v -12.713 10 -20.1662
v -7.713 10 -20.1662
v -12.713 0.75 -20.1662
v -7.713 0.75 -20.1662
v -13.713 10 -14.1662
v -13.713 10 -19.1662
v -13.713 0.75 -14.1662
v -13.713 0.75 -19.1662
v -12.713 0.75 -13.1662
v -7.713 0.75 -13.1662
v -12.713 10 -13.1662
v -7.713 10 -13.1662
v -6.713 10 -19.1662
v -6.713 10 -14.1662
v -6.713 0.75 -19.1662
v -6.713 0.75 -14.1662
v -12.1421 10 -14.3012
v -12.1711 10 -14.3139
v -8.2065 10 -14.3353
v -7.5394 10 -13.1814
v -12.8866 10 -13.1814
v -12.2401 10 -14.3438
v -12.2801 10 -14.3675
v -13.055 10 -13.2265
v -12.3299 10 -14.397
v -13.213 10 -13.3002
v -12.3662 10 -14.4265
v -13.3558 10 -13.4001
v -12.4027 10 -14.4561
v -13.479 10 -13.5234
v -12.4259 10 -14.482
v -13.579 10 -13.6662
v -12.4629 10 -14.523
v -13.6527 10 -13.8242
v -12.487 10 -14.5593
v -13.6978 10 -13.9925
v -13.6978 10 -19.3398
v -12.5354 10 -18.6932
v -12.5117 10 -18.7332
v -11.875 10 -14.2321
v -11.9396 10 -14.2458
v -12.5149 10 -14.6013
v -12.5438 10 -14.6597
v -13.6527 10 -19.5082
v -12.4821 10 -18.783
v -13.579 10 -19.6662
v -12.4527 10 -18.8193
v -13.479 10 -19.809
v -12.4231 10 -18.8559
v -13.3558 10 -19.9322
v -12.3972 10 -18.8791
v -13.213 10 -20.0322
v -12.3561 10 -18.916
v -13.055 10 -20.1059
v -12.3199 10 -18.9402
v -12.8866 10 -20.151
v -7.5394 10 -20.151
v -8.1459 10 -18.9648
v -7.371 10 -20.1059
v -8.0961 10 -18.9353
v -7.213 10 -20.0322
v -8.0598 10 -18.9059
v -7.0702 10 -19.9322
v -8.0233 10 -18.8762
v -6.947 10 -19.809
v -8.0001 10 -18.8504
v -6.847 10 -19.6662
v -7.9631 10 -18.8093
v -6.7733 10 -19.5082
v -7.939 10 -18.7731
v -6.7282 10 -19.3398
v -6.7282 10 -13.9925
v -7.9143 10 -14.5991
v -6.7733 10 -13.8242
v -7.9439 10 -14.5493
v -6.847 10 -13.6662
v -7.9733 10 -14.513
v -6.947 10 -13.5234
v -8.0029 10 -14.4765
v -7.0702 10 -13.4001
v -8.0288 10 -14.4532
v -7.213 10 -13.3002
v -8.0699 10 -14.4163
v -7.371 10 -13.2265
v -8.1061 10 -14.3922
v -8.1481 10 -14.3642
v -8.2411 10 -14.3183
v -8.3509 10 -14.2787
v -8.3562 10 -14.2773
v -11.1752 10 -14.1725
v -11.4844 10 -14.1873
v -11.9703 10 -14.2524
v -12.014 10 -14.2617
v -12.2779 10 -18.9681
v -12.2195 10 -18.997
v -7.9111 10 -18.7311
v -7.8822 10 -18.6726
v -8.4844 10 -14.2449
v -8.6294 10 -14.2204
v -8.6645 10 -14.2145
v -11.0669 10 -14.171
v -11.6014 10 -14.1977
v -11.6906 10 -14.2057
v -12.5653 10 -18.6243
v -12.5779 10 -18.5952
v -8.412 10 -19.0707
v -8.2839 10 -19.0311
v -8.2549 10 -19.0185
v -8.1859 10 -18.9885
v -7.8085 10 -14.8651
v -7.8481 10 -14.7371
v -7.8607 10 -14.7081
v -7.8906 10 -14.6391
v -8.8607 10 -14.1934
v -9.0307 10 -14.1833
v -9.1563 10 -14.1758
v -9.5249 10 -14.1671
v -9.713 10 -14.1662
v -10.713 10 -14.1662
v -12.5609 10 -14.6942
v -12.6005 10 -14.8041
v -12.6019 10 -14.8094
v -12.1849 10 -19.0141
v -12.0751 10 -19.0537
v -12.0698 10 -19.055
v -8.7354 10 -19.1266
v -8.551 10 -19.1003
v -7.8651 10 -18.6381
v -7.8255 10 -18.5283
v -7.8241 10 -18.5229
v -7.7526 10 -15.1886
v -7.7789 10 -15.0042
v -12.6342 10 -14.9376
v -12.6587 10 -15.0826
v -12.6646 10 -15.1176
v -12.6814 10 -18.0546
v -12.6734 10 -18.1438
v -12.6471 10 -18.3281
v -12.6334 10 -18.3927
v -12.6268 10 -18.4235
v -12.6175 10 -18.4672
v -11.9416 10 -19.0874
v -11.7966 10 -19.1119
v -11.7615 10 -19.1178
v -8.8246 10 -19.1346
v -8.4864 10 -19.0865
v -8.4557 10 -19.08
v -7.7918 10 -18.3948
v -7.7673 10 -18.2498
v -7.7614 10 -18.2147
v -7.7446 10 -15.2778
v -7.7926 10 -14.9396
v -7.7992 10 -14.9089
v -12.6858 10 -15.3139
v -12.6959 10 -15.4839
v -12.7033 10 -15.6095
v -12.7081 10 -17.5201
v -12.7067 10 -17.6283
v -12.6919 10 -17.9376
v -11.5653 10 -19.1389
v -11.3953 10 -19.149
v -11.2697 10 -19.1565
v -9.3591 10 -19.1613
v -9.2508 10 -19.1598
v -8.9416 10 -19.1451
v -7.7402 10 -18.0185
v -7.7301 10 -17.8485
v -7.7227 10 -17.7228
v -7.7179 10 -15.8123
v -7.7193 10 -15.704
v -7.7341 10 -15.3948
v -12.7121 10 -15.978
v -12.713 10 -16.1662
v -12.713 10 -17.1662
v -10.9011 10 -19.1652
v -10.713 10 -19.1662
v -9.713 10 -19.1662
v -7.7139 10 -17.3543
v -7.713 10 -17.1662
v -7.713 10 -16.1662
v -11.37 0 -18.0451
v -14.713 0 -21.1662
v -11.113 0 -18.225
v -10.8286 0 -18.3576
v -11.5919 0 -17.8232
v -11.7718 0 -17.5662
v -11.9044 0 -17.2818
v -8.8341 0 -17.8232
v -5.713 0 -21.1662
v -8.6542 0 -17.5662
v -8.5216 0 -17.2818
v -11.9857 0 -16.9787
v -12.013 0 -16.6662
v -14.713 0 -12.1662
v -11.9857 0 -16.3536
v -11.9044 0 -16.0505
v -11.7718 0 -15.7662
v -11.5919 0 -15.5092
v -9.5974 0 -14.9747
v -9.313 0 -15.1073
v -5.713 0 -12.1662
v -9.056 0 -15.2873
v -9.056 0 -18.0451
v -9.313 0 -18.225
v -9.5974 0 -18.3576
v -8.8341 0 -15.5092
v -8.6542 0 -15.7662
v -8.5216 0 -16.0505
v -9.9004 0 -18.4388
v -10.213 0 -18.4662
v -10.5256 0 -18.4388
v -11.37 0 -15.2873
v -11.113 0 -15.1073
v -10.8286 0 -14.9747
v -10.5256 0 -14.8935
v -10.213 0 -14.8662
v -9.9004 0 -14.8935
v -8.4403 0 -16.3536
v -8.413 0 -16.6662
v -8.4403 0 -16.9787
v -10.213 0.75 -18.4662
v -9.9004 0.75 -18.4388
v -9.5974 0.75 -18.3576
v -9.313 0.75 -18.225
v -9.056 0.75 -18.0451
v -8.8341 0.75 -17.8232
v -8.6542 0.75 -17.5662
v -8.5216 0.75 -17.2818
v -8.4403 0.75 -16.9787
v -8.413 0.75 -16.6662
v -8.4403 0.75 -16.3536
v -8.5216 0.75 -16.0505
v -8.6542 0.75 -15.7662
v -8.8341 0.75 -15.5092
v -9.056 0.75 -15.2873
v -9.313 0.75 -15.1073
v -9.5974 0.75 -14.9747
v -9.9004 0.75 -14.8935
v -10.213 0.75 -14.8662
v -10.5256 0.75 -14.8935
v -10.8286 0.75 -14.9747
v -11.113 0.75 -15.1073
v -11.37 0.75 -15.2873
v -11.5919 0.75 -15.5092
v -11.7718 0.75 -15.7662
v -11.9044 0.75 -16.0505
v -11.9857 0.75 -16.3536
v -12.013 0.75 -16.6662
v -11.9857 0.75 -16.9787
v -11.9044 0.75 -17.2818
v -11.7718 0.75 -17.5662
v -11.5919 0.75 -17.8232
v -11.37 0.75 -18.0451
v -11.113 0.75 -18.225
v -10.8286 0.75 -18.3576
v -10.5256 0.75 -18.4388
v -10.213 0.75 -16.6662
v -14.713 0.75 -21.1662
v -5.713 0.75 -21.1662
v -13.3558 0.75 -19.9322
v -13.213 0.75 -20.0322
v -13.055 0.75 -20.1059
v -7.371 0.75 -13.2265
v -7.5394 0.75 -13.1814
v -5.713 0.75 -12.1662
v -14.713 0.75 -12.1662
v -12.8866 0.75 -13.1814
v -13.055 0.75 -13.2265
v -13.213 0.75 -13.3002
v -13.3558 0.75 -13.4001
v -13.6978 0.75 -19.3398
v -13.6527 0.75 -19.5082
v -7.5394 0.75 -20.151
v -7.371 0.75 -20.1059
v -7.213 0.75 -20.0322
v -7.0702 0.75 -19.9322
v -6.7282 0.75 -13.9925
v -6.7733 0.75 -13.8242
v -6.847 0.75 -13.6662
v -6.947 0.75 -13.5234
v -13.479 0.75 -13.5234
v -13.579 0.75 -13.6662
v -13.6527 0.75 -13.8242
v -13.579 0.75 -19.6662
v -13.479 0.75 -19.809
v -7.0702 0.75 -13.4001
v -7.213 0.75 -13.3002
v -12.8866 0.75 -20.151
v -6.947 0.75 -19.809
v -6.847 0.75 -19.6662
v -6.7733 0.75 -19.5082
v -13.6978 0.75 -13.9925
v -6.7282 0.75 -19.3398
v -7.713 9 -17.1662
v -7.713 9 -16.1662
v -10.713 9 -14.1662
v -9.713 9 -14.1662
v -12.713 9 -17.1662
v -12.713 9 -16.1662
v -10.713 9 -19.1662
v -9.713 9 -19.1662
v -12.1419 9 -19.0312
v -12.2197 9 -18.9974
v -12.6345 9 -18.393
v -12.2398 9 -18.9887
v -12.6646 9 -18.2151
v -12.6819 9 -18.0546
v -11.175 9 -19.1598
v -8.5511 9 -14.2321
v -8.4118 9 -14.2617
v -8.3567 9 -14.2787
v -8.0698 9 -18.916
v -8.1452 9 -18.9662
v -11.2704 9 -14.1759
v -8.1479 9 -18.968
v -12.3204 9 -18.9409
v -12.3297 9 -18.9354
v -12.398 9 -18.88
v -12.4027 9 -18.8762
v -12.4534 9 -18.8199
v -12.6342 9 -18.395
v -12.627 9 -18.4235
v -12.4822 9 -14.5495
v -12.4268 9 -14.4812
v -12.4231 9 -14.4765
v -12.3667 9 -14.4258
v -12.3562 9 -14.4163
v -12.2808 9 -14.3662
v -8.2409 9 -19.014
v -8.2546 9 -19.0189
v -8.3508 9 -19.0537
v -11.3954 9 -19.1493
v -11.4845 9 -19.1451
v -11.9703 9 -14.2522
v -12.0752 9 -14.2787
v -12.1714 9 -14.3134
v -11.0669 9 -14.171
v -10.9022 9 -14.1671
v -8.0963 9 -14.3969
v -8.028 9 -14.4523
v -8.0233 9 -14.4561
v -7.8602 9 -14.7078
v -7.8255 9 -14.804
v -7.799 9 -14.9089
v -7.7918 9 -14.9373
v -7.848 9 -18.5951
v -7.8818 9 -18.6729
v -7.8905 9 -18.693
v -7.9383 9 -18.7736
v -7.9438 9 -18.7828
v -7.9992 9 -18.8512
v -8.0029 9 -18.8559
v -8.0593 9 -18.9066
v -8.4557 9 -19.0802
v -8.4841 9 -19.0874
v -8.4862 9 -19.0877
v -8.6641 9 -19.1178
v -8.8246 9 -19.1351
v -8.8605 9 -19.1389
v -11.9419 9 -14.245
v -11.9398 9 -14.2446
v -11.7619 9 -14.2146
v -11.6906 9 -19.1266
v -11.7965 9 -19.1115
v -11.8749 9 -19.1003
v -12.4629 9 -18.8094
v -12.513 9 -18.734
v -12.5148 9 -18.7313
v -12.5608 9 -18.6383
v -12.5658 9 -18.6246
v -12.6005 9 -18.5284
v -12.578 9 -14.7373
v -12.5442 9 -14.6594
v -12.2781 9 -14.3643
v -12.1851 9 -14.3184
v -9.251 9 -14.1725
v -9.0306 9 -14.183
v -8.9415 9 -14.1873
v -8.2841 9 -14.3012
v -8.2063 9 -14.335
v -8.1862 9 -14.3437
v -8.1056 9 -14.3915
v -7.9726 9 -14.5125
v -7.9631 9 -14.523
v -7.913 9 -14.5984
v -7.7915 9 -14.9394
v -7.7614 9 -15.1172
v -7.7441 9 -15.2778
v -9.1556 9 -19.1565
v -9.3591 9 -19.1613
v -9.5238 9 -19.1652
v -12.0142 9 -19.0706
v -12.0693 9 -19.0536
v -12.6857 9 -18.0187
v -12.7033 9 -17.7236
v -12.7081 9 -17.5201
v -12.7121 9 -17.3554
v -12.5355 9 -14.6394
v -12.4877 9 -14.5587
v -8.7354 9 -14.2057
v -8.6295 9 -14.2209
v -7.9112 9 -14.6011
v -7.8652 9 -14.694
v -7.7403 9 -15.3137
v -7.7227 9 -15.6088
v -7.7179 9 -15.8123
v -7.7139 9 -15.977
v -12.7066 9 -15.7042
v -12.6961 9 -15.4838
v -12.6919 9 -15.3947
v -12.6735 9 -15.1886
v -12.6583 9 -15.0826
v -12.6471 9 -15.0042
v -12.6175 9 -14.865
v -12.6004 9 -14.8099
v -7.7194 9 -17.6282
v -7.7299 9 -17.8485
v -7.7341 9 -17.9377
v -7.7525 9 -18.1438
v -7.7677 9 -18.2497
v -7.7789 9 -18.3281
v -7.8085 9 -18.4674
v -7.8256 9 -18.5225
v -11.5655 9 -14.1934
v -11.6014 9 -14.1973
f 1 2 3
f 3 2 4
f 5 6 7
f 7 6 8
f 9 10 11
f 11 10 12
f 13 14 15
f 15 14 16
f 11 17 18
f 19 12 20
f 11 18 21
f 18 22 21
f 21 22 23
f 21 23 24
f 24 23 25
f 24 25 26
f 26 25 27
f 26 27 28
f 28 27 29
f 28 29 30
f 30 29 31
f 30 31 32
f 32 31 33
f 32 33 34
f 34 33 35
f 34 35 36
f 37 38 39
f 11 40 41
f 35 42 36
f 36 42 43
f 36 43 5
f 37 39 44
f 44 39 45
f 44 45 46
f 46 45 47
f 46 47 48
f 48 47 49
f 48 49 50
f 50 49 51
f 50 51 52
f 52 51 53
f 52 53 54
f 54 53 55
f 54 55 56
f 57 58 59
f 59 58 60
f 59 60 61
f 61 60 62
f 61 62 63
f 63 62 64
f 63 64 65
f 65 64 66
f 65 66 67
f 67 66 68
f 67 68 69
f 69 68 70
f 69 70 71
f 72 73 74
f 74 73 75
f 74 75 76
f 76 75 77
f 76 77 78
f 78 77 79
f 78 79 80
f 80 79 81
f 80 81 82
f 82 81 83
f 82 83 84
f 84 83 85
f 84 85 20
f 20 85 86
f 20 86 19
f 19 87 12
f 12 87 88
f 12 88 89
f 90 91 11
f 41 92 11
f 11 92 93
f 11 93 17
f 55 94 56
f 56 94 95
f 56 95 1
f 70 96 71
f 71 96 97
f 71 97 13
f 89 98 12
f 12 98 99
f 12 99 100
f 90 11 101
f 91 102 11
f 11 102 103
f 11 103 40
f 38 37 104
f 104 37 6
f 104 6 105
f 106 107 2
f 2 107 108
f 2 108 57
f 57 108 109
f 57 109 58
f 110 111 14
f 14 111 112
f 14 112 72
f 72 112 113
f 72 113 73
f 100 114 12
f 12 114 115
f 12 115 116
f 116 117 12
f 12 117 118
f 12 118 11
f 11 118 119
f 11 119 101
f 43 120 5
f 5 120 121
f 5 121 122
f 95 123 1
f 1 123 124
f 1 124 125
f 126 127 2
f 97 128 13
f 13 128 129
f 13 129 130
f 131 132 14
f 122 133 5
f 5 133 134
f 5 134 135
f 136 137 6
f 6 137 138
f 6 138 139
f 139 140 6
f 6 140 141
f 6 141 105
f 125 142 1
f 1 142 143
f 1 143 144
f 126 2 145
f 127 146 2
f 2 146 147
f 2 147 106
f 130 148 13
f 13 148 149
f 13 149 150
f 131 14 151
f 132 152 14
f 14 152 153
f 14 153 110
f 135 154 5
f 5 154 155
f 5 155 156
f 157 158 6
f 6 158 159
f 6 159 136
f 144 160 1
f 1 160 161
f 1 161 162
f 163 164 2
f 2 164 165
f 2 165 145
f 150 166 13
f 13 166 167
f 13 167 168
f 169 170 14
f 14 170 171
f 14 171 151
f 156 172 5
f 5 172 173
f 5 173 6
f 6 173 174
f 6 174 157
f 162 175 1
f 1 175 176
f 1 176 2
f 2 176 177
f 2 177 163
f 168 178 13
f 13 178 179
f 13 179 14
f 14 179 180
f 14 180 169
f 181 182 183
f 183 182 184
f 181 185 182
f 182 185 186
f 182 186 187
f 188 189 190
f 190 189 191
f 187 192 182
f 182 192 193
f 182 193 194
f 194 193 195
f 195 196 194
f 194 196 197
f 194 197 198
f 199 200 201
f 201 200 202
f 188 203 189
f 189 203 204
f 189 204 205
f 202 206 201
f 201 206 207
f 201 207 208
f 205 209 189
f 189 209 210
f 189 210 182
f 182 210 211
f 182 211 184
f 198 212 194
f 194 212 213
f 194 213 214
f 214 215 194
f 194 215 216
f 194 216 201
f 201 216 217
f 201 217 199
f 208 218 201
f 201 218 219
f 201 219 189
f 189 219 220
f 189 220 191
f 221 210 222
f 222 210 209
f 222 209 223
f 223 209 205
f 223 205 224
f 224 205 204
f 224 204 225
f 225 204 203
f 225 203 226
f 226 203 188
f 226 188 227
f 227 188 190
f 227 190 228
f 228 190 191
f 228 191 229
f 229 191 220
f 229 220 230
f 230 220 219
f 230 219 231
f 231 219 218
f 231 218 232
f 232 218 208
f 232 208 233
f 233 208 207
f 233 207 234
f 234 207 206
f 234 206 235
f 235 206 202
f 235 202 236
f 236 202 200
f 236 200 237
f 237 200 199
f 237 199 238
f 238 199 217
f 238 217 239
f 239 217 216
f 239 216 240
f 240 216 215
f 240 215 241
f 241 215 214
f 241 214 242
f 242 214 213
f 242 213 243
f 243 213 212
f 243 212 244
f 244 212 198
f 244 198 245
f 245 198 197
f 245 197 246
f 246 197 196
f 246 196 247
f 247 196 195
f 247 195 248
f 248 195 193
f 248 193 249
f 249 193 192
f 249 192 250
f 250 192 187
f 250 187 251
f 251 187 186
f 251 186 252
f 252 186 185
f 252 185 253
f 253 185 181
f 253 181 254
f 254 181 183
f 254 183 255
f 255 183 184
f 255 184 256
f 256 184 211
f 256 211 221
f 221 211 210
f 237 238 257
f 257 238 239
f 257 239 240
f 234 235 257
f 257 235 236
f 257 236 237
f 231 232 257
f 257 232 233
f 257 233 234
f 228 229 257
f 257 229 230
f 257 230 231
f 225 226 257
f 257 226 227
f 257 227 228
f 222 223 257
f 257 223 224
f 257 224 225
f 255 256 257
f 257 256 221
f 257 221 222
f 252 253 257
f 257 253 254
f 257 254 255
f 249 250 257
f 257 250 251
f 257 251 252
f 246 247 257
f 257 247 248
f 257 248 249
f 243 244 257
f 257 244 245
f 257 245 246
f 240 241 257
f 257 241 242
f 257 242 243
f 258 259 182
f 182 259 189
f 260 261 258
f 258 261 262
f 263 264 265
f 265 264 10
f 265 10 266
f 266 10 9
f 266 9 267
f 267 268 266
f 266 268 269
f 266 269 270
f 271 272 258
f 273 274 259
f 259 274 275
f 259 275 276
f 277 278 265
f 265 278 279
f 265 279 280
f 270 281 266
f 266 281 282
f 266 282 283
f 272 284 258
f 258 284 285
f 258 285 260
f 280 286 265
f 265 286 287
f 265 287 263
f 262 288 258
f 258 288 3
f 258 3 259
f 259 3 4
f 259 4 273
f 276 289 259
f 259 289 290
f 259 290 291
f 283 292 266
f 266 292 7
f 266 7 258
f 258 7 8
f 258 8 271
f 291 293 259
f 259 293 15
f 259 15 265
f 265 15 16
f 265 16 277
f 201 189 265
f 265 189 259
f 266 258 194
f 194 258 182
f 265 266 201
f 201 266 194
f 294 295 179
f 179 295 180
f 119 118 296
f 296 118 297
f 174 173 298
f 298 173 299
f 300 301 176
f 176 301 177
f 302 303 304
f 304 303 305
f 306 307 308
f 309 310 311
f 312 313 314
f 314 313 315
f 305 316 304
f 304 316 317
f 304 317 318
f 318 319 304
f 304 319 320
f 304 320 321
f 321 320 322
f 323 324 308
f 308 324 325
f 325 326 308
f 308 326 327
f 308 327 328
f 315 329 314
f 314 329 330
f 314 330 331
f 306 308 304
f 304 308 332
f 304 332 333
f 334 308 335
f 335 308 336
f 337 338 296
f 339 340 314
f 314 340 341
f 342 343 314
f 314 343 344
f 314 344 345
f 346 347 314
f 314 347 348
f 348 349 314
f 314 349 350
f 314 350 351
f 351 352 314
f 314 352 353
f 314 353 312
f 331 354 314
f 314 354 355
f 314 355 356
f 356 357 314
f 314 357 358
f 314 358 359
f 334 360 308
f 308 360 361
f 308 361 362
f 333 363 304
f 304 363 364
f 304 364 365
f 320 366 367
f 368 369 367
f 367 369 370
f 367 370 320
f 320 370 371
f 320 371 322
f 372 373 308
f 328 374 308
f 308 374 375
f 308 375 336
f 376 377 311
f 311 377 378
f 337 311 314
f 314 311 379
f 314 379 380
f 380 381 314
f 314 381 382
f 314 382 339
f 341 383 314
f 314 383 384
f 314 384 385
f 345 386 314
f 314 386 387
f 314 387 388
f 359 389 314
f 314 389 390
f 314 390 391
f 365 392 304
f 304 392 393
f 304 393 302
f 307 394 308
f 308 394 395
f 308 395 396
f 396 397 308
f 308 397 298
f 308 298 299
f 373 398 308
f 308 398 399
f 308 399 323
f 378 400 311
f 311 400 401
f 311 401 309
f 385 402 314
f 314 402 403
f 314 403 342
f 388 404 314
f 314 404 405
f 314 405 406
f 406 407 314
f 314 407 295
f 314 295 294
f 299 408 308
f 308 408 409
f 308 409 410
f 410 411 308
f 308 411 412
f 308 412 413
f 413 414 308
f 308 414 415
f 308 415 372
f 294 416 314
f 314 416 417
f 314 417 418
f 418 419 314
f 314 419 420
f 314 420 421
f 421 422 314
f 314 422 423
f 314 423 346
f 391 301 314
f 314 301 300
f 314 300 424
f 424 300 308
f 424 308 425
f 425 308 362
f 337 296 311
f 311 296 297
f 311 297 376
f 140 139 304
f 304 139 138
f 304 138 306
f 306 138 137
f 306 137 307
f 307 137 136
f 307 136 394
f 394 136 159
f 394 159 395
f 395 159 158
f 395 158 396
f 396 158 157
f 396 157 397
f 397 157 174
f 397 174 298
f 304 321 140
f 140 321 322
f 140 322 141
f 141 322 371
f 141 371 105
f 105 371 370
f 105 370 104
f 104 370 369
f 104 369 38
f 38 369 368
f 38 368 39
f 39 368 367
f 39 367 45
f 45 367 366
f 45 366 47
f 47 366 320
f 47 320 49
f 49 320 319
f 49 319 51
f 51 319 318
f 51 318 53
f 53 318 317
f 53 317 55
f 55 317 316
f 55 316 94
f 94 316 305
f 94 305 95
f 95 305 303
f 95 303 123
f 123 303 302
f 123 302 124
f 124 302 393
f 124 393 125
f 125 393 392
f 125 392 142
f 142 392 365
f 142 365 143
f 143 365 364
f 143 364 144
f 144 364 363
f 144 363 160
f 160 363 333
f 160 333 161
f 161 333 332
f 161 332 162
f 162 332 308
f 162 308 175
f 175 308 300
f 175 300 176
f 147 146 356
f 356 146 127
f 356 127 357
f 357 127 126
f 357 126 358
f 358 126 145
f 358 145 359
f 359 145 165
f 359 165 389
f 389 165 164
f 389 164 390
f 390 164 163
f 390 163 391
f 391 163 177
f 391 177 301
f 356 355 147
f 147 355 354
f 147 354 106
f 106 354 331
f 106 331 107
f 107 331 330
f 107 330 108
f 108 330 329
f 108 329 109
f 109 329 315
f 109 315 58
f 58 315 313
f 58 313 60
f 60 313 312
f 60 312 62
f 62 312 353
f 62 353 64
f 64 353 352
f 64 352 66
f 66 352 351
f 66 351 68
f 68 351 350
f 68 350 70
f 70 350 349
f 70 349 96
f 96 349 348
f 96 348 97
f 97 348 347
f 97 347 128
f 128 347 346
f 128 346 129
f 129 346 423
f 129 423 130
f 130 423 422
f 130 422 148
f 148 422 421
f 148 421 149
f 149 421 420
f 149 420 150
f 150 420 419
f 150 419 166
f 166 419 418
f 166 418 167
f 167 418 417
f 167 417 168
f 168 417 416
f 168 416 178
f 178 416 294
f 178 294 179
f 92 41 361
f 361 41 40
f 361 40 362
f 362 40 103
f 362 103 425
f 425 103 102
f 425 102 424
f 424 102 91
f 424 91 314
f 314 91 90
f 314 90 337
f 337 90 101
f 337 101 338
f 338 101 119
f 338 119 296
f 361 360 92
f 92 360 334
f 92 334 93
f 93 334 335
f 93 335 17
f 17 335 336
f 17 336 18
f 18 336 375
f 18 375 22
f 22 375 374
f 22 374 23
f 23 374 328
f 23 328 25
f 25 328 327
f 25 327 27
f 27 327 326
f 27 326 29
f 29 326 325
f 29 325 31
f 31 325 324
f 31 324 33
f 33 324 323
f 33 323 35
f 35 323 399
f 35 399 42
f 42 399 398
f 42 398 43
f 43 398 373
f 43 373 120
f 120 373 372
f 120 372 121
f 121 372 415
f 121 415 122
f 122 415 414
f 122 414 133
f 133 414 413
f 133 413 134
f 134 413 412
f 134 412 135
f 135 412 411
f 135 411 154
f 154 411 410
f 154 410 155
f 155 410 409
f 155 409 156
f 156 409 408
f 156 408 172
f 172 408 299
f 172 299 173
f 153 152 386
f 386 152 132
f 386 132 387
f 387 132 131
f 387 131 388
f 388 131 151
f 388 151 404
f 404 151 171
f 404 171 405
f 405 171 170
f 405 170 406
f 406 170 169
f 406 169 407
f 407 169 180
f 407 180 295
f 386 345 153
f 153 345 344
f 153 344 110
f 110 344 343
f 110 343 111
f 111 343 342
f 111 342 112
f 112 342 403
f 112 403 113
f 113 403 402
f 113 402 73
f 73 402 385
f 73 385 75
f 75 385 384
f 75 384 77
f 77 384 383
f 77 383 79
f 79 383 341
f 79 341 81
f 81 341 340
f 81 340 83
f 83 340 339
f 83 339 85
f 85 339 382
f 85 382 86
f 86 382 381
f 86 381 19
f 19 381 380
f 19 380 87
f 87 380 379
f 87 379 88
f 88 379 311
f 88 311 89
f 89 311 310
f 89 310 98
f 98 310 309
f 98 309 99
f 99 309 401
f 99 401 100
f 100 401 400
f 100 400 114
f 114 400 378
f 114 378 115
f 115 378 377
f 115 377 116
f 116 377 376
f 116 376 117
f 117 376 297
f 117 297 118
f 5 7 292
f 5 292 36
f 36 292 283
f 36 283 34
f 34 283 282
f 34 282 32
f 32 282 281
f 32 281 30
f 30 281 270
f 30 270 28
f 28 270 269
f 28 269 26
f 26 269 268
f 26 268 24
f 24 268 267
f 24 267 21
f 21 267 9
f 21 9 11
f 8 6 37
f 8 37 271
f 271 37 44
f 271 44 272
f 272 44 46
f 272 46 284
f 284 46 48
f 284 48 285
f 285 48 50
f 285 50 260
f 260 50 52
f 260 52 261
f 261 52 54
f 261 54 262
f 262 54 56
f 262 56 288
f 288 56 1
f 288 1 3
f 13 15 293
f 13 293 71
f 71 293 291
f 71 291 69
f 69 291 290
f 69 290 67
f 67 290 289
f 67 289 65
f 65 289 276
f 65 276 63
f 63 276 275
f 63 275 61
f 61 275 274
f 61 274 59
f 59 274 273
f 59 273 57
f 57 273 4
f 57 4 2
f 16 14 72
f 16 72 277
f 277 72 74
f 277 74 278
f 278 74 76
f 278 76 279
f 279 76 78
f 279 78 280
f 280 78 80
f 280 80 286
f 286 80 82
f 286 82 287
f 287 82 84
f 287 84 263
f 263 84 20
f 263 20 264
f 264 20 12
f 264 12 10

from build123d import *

# Parameters (mm, degrees)
SKETCH1_W           = 7
SKETCH1_H           = 7
SKETCH1_R           = 1.8
BOSS_EXTRUDE1_DEPTH = 10
SKETCH1_4_R         = 1.8
CUT_EXTRUDE1_DEPTH  = 0.75
SKETCH2_W           = 8
SKETCH2_H           = 0.75
BOSS_EXTRUDE2_DEPTH = 1
CIRPATTERN1_DEPTH   = 0.75
SKETCH4_W           = 5
SKETCH4_H           = 5
CUT_EXTRUDE2_DEPTH  = 1
FILLET1_SIZE        = 2
FILLET2_R           = 1


with BuildPart() as part:
    # Sketch1 → Boss-Extrude1 (new body)
    # profile 1 of 2: a face of its own
    with BuildSketch(Plane(origin=(0, 0, 0), x_dir=(1, 0, 0), z_dir=(0, 1, 0))):
        with Locations((-10.213000206, 16.666176773)):
            Rectangle(SKETCH1_W, SKETCH1_H)
        with Locations((-10.213000206, 16.666176773)):
            Circle(SKETCH1_R, mode=Mode.SUBTRACT)
    # profile 2 of 2: a face of its own
    with BuildSketch(Plane(origin=(0, 0, 0), x_dir=(1, 0, 0), z_dir=(0, 1, 0))):
        with Locations((-10.213000206, 16.666176773)):
            Circle(SKETCH1_R)
    extrude(amount=BOSS_EXTRUDE1_DEPTH)

    # Sketch1<4> → Cut-Extrude1 (cut)
    with BuildSketch(Plane(origin=(0, 0, 0), x_dir=(1, 0, 0), z_dir=(0, 1, 0))):
        with Locations(Location((-10.213000206, 16.666176773, 0), (0, 0, 270))):
            Circle(SKETCH1_4_R)
    extrude(amount=CUT_EXTRUDE1_DEPTH, mode=Mode.SUBTRACT)

    # Sketch2 → Boss-Extrude2 (add)
    with BuildSketch(Plane(origin=(-6.713000206, 0, 0), x_dir=(0, 0, -1), z_dir=(1, 0, 0))):
        with Locations((17.166176773, 0.375)):
            Rectangle(SKETCH2_W, SKETCH2_H)
    extrude(amount=BOSS_EXTRUDE2_DEPTH)

    # CirPattern1: read off the stored shape, not the designer's step
    # CirPattern1 outline → CirPattern1 (add)
    with BuildSketch(Plane(origin=(0, 0, 0), x_dir=(1, 0, 0), z_dir=(0, 1, 0))):
        Polygon((-6.713000206, 21.166176773), (-14.713000206, 21.166176773), (-14.713000206, 12.166176773), (-5.713000206, 12.166176773), (-5.713000206, 13.166176773), (-13.713000206, 13.166176773), (-13.713000206, 20.166176773), (-6.713000206, 20.166176773), align=None)
    extrude(amount=CIRPATTERN1_DEPTH)

    # Sketch4 → Cut-Extrude2 (cut)
    with BuildSketch(Plane(origin=(0, 10, 0), x_dir=(1, 0, 0), z_dir=(0, 1, 0))):
        with Locations((-10.213000206, 16.666176773)):
            Rectangle(SKETCH4_W, SKETCH4_H)
    extrude(amount=-CUT_EXTRUDE2_DEPTH, mode=Mode.SUBTRACT)

    # Fillet1
    # a fillet whose section is not a circle: 2 mm, written as the material it adds along each edge
    with BuildSketch(Plane(origin=(-12.713000206, 10, -19.166176773), x_dir=(0, 0, 1), z_dir=(0, -1, 0)), Plane(origin=(-7.713000206, 10, -19.166176773), x_dir=(-1, 0, 0), z_dir=(0, -1, 0)), Plane(origin=(-12.713000206, 10, -14.166176773), x_dir=(1, 0, 0), z_dir=(0, -1, 0))) as fillet1_piece_1:
        with BuildLine():
            Bezier((FILLET1_SIZE, 0), (0, 0), (0, -FILLET1_SIZE), weights=[1, 2.333333333, 1])
            Line((0, -FILLET1_SIZE), (0, 0))
            Line((0, 0), (FILLET1_SIZE, 0))
        make_face()
    extrude(amount=6)
    with BuildSketch(Plane(origin=(-7.713000206, 10, -14.166176773), x_dir=(-1, 0, 0), z_dir=(0, -1, 0))) as fillet1_piece_2:
        with BuildLine():
            Bezier((FILLET1_SIZE, 0), (0, 0), (0, FILLET1_SIZE), weights=[1, 2.333333333, 1])
            Line((0, FILLET1_SIZE), (0, 0))
            Line((0, 0), (FILLET1_SIZE, 0))
        make_face()
    extrude(amount=6)

    # Fillet2
    fillet2_edges = [part.edges().sort_by_distance(p)[0] for p in [
        (-6.713000206, 5.375, -13.166176773),
        (-13.713000206, 5.375, -13.166176773),
        (-13.713000206, 5.375, -20.166176773),
        (-6.713000206, 5.375, -20.166176773),
    ]]
    fillet(fillet2_edges, radius=FILLET2_R)


solid = part.part
